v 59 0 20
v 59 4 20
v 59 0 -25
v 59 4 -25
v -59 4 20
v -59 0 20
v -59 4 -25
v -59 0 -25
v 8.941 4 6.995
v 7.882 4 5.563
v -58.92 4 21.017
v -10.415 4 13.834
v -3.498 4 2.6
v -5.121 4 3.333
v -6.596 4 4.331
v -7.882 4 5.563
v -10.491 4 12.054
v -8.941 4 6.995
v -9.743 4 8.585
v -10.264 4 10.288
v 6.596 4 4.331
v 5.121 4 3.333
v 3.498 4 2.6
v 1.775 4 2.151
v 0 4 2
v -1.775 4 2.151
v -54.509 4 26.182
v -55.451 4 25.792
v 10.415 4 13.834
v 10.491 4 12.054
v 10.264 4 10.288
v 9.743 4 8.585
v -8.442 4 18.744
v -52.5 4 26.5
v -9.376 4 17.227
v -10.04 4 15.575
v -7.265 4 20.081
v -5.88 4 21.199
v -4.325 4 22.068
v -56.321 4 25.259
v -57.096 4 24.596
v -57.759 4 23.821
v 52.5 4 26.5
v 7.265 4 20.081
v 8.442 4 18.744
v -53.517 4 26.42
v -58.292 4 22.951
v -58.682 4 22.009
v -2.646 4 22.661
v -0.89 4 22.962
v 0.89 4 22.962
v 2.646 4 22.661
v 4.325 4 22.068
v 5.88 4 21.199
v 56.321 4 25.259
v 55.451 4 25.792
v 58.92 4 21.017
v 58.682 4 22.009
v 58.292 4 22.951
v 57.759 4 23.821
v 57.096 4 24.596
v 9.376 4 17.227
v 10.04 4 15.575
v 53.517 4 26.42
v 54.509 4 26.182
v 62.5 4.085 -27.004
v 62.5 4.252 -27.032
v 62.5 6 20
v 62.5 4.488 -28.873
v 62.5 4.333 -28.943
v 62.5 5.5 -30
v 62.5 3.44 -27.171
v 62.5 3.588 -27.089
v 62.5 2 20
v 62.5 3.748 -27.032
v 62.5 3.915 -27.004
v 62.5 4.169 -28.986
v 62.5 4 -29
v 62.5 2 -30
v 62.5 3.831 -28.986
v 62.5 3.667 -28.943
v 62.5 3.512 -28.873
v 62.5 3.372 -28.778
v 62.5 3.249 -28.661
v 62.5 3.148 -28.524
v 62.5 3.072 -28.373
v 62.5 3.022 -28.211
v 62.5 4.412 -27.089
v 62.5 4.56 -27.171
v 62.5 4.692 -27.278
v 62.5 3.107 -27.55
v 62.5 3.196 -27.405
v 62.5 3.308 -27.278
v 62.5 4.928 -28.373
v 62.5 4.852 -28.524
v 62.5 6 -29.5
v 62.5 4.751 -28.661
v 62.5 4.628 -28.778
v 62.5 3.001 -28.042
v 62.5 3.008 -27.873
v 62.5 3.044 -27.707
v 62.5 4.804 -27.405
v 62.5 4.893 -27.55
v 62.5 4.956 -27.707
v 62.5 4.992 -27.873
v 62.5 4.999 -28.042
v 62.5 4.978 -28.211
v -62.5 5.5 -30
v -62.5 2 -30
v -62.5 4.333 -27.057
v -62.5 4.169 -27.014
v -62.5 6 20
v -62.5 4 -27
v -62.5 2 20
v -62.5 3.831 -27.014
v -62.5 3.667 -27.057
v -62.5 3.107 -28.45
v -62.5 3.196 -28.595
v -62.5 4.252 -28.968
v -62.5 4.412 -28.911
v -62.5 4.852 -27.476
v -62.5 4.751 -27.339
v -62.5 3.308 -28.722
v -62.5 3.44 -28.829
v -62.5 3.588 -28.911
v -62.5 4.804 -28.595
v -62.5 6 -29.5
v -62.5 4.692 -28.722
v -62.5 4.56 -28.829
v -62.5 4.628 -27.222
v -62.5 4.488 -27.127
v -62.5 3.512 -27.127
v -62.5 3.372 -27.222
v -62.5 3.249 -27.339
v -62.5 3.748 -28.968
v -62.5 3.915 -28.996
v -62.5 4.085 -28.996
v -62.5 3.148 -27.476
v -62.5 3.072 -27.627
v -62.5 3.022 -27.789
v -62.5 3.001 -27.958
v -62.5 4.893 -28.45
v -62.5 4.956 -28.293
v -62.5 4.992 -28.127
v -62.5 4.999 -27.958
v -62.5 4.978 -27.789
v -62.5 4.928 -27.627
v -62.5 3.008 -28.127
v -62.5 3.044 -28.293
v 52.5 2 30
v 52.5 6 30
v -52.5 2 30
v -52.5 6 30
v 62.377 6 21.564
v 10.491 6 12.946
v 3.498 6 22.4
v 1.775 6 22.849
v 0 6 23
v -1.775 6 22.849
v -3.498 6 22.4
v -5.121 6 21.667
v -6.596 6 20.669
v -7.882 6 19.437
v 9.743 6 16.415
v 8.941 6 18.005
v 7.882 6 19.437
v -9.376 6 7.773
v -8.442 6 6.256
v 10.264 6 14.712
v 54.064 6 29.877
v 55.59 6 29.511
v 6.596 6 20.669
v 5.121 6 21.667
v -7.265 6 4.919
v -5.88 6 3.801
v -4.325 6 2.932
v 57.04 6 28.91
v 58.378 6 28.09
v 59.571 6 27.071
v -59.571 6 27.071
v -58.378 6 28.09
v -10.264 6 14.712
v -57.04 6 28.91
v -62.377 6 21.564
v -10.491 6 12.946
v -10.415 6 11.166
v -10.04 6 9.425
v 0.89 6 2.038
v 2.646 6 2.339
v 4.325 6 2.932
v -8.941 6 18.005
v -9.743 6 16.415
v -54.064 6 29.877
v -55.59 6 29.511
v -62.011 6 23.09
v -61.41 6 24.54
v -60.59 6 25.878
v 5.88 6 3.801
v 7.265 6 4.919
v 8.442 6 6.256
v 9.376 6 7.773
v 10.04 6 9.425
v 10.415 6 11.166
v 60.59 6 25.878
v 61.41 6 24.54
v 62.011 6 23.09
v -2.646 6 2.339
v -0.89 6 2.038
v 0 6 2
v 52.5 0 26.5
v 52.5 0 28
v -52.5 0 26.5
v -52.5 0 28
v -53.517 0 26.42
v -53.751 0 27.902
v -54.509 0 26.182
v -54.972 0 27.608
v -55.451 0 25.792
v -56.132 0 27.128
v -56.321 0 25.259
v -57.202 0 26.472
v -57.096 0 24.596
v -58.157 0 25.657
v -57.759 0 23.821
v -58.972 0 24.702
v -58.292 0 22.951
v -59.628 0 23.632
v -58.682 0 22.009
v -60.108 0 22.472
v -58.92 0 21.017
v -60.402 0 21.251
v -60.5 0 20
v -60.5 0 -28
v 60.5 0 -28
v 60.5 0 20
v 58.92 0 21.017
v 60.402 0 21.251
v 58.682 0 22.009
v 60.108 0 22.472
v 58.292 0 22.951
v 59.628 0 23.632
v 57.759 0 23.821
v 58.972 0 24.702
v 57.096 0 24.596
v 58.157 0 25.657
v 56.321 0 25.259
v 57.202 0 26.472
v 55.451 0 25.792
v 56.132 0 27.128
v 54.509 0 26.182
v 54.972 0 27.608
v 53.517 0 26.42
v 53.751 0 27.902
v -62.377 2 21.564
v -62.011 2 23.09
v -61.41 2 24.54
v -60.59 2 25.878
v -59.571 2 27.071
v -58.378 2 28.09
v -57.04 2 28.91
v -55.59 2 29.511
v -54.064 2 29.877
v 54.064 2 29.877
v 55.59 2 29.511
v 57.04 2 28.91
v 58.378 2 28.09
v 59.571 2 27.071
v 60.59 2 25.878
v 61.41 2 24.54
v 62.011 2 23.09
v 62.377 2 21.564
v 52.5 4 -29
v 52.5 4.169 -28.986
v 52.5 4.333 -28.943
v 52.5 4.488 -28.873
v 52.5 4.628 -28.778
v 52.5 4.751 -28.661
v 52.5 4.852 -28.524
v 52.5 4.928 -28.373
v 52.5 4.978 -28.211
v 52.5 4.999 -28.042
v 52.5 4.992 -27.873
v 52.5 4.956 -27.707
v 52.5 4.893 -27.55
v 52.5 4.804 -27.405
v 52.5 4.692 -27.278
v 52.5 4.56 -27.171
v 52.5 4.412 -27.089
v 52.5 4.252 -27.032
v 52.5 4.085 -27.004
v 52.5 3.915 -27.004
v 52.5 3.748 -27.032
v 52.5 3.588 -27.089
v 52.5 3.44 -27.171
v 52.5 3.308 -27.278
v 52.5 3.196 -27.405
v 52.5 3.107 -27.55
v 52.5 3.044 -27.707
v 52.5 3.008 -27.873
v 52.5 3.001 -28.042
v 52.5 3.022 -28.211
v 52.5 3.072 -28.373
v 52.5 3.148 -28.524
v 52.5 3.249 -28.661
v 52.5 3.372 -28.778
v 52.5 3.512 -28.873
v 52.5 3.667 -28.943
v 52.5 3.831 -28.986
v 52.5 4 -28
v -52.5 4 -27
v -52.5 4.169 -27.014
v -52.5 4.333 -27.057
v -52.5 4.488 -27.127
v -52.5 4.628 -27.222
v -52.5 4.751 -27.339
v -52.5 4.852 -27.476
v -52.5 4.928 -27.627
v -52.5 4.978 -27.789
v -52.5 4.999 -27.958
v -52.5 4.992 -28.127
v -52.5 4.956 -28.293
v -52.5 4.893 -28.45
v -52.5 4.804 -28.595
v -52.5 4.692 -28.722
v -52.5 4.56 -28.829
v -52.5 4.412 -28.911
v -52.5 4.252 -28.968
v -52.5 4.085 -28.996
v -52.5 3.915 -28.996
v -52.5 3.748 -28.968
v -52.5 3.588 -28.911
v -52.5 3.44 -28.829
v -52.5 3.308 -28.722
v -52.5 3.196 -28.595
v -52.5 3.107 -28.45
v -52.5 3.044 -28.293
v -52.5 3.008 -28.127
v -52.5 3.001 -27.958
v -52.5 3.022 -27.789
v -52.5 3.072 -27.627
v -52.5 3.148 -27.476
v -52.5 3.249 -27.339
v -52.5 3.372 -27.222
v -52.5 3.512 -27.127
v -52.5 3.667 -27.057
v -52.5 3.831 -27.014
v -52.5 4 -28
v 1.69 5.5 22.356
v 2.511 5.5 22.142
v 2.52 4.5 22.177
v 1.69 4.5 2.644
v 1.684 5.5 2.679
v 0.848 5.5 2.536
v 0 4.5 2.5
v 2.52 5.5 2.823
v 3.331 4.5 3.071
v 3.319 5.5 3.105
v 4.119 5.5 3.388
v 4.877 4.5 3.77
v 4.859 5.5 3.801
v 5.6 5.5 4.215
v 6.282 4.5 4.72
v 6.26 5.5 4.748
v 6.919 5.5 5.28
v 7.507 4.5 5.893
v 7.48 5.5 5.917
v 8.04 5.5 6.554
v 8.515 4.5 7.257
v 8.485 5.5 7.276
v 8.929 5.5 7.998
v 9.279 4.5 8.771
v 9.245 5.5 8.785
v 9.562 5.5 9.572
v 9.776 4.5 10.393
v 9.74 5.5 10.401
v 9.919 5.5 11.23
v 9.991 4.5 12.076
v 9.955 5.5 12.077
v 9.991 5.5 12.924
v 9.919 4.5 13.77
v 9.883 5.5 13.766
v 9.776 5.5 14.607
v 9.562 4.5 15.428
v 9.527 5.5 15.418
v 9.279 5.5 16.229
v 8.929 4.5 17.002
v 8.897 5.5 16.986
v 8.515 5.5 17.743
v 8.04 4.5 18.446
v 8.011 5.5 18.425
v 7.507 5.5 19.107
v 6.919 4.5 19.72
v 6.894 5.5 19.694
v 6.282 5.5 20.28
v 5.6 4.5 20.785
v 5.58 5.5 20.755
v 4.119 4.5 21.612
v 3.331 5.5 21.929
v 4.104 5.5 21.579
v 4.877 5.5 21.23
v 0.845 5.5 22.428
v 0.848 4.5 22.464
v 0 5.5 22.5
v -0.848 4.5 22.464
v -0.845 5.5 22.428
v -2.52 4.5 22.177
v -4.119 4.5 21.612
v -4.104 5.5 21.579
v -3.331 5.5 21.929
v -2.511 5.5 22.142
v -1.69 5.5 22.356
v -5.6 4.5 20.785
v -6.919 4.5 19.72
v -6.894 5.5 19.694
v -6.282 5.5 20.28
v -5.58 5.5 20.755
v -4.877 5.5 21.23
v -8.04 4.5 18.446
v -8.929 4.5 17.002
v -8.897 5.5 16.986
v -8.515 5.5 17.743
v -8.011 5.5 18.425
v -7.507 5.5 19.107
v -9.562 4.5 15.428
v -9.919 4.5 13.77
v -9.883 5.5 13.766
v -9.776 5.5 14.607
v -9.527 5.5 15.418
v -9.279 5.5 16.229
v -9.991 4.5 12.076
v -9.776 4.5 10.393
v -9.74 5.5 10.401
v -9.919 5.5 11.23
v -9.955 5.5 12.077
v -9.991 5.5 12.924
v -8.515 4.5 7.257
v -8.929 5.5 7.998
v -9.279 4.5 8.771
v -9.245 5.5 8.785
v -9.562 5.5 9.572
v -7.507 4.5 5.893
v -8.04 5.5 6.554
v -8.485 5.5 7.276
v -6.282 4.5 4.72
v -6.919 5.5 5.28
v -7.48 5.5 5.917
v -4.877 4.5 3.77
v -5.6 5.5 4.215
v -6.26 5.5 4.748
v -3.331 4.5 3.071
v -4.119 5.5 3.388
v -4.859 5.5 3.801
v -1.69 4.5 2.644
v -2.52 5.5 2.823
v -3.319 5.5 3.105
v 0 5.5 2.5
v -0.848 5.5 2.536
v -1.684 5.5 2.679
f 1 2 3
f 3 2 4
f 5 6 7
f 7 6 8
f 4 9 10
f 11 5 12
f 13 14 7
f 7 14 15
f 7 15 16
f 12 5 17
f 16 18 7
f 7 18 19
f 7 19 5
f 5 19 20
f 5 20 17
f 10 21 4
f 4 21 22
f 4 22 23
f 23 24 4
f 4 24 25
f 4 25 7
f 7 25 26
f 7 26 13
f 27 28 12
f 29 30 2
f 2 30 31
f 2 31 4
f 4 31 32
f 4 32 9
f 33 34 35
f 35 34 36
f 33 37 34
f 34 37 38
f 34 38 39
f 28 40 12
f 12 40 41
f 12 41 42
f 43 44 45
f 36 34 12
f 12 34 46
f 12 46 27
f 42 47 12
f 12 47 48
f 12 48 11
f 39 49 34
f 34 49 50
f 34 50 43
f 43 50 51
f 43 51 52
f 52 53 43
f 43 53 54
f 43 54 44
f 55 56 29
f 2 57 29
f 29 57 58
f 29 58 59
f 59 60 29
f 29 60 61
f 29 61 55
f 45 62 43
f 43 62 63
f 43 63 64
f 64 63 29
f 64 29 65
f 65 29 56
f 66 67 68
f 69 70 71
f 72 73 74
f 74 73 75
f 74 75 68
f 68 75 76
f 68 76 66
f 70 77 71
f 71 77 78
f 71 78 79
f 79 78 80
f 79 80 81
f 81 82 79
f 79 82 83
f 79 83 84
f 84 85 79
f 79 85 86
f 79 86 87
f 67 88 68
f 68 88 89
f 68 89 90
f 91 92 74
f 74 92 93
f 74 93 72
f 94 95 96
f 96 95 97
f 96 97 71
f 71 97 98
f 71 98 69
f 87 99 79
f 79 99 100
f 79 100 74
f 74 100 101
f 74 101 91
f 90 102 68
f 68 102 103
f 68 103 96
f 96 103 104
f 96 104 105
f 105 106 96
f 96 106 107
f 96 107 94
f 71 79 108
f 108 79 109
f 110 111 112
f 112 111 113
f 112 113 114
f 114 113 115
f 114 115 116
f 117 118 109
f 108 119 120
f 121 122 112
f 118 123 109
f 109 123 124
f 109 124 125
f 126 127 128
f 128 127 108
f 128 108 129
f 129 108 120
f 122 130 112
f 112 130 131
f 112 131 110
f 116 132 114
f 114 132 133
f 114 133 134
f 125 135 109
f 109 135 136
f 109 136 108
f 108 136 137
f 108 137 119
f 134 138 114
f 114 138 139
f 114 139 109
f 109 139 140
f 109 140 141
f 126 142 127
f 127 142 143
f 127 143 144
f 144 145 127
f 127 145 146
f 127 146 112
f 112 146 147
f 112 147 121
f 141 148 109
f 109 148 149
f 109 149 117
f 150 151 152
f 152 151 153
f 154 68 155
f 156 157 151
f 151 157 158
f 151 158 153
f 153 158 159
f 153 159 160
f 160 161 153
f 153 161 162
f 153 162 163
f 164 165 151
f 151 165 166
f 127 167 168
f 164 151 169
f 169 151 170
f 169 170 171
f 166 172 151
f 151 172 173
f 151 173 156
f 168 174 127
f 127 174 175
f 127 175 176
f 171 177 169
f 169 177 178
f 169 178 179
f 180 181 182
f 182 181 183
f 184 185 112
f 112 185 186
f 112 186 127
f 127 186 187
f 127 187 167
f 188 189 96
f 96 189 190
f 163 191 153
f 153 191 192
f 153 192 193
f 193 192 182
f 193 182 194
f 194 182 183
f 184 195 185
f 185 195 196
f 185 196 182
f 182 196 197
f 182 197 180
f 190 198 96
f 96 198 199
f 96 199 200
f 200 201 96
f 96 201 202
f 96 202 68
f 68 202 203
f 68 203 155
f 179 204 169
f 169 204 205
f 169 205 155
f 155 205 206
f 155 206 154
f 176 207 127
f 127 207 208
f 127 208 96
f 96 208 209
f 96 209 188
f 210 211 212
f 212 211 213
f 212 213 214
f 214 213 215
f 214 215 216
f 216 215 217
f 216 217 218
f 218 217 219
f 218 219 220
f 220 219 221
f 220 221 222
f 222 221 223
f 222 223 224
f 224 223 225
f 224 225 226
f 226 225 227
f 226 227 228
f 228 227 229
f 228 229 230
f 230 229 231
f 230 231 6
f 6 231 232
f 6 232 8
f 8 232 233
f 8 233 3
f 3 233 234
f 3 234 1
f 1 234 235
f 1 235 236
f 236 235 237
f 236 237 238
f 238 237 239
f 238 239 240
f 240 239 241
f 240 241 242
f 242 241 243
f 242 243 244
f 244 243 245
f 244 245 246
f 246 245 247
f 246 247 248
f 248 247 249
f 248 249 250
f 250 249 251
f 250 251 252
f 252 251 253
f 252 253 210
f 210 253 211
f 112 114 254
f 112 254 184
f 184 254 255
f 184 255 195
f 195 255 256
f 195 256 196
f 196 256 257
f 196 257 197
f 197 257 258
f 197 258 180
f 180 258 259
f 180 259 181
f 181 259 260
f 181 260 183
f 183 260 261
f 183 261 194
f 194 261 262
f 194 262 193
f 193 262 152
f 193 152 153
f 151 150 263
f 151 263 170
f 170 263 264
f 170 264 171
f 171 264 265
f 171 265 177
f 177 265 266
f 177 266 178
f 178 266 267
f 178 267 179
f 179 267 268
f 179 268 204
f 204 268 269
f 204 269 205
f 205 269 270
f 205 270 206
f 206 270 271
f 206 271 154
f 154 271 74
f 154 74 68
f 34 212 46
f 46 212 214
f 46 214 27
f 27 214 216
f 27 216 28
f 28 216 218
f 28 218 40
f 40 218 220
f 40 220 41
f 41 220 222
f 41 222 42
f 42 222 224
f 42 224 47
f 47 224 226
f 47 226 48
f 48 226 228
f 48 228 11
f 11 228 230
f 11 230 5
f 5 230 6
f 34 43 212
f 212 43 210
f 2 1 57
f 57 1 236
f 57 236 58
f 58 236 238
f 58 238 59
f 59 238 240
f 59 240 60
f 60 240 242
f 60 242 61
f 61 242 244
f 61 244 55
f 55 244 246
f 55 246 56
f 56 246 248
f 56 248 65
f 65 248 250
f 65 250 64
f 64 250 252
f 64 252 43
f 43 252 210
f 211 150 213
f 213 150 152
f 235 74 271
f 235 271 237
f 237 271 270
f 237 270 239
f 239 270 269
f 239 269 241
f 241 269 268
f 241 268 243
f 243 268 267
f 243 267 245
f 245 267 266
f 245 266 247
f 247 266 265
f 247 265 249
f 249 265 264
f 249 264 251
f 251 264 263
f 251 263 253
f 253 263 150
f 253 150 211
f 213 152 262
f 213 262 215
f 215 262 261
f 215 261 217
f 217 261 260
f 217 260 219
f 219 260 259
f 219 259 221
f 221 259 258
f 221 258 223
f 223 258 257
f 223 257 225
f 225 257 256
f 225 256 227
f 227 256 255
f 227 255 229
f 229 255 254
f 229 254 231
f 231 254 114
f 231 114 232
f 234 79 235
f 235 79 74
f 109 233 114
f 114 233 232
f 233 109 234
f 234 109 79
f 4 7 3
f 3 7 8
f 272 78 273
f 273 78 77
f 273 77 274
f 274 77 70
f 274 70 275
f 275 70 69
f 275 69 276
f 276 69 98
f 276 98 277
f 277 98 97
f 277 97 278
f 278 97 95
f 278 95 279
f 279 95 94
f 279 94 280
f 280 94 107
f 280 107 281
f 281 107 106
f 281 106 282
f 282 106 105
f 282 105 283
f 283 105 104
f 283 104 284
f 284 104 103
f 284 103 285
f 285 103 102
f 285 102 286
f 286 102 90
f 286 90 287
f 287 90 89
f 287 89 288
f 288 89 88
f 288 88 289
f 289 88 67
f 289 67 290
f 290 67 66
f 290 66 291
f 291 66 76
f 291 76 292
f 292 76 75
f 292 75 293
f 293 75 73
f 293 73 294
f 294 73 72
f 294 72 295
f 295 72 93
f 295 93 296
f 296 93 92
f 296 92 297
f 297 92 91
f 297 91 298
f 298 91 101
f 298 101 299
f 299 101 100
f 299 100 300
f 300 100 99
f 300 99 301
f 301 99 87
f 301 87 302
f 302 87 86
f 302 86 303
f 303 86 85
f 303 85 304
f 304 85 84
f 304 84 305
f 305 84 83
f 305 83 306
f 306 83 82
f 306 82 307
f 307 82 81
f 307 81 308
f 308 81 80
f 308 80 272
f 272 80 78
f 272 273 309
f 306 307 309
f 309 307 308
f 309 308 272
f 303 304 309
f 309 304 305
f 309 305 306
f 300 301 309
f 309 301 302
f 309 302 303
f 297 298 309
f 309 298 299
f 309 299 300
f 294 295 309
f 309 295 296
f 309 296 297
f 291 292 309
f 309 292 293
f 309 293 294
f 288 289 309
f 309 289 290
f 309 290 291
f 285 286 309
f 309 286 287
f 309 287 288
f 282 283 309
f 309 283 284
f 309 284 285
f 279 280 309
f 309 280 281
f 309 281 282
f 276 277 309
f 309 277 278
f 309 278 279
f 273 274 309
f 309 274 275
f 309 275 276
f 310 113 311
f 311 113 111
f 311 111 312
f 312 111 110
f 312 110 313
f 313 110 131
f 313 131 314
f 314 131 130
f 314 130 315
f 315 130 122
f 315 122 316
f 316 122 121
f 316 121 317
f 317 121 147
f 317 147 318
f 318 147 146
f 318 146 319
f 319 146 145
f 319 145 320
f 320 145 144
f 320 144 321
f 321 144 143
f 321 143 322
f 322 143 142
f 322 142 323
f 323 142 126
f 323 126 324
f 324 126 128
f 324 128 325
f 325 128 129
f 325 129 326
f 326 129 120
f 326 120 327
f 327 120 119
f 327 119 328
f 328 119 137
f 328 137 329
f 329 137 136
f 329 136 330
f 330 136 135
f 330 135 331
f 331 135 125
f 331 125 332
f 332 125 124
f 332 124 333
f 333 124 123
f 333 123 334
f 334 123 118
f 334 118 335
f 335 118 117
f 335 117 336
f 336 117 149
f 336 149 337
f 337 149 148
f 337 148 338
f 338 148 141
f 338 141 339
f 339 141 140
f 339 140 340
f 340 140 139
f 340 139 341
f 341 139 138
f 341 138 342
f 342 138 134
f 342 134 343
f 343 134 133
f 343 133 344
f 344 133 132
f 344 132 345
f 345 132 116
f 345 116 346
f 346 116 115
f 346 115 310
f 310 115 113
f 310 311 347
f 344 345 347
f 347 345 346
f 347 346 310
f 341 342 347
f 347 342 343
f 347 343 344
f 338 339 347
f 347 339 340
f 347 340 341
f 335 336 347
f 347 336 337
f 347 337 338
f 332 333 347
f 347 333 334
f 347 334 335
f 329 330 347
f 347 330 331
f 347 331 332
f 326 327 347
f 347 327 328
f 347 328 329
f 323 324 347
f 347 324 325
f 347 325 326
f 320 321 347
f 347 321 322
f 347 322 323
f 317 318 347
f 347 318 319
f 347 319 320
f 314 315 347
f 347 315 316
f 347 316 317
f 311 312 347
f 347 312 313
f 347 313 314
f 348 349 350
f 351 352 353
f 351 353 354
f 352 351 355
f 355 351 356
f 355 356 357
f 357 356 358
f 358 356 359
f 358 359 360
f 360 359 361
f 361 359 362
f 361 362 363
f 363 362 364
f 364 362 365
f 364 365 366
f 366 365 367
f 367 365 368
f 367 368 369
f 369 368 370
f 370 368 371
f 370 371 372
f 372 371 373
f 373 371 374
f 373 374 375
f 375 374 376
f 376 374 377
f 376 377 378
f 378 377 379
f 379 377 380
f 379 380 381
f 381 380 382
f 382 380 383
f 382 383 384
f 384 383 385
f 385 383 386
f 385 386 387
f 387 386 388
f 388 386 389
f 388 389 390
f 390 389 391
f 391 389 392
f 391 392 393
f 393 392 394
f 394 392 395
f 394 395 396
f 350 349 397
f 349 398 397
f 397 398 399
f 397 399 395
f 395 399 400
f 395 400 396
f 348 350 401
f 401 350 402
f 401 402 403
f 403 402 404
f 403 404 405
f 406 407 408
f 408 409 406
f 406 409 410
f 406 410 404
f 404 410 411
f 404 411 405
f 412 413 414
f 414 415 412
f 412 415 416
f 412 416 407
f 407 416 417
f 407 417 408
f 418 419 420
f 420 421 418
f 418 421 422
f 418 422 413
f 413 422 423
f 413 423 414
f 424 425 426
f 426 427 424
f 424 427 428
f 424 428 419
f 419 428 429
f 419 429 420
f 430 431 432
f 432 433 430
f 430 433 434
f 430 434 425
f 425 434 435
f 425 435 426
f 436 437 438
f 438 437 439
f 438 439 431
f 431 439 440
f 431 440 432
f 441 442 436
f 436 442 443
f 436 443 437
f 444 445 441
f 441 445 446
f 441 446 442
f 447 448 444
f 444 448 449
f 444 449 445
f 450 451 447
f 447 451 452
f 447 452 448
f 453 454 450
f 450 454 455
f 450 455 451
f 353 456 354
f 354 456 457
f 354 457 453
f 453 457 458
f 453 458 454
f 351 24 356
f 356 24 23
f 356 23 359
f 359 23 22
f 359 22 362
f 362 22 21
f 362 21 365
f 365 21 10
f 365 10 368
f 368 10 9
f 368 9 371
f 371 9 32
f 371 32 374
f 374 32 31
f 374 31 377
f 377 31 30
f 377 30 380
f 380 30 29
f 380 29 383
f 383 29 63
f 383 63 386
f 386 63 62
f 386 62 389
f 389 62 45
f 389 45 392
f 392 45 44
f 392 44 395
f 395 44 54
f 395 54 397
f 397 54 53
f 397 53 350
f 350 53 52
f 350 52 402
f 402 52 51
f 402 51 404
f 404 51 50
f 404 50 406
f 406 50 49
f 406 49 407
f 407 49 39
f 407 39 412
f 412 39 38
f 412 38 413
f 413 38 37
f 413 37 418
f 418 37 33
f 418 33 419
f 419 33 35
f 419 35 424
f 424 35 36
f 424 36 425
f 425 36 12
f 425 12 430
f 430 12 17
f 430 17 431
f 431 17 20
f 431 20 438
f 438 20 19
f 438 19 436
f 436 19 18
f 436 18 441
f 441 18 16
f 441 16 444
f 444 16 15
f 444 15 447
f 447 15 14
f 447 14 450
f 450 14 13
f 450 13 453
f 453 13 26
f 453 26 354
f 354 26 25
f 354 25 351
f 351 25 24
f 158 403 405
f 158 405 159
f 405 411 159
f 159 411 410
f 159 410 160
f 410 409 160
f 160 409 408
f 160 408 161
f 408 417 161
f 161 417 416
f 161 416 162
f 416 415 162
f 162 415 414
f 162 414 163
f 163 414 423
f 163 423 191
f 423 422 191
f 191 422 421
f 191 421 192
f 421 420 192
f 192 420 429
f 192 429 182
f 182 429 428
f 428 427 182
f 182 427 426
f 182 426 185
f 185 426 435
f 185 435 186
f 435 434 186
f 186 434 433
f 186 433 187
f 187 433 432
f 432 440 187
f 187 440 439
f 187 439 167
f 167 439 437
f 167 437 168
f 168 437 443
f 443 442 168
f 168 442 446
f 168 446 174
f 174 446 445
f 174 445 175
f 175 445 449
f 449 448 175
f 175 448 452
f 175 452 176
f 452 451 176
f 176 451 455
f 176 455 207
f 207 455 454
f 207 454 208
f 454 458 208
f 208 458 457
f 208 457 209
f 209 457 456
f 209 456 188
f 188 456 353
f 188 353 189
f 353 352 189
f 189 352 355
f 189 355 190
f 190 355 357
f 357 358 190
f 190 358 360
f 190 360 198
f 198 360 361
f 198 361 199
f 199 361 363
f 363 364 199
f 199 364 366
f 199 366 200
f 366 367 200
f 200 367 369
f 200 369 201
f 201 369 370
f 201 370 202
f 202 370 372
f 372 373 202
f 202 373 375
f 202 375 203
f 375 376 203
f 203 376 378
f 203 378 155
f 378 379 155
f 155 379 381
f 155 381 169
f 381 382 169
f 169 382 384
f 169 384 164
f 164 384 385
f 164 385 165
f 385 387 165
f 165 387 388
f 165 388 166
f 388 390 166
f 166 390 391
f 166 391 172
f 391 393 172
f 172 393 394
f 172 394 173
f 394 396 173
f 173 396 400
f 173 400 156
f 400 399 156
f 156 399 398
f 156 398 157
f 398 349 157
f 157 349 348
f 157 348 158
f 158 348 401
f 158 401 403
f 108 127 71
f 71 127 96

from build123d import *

# Parameters (mm, degrees)
SKETCH_1_W          = 125
SKETCH_1_H          = 60
EXTRUDE_1_DEPTH     = 6
FILLET_1_R          = 10
CUT_EXTRUDE_1_DEPTH = 4
CHAMFER_1_SIZE      = 2
SKETCH_4_W          = 118
SKETCH_4_H          = 1.5
EXTRUDE_3_DEPTH     = 4
SKETCH_3_R          = 1
CUT_EXTRUDE_2_DEPTH = 10
SKETCH_5_R          = 1
CUT_EXTRUDE_3_DEPTH = 10
SKETCH_6_R          = 10
CUT_EXTRUDE_4_DEPTH = 2
CHAMFER_2_SIZE      = 0.5


with BuildPart() as part:
    # Эскиз1 → Бобышка-Вытянуть1 (new body)
    with BuildSketch(Plane(origin=(0, 0, 0), x_dir=(1, 0, 0), z_dir=(0, 1, 0))):
        Rectangle(SKETCH_1_W, SKETCH_1_H)
    extrude(amount=EXTRUDE_1_DEPTH)

    # Скругление1
    fillet_1_edges = [part.edges().sort_by_distance(p)[0] for p in [
        (62.5, 3, 30),
        (-62.5, 3, 30),
    ]]
    fillet(fillet_1_edges, radius=FILLET_1_R)

    # Эскиз2 → Вырез-Вытянуть1 (cut)
    with BuildSketch(Plane.XZ):
        with BuildLine():
            Line((-59, 20), (-59, -26.5))
            Line((-59, -26.5), (59, -26.5))
            Line((59, -26.5), (59, 20))
            ThreePointArc((59, 20), (57.096194078, 24.596194078), (52.5, 26.5))
            Line((52.5, 26.5), (-52.5, 26.5))
            ThreePointArc((-52.5, 26.5), (-57.096194078, 24.596194078), (-59, 20))
        make_face()
    extrude(amount=-CUT_EXTRUDE_1_DEPTH, mode=Mode.SUBTRACT)

    # Фаска1
    chamfer_1_edges = [part.edges().sort_by_distance(p)[0] for p in [
        (0, 0, 30),
        (62.5, 0, -5),
        (59.571067812, 0, 27.071067812),
        (-59.571067812, 0, 27.071067812),
        (-62.5, 0, -5),
        (0, 0, -30),
    ]]
    chamfer(chamfer_1_edges, length=CHAMFER_1_SIZE)

    # Эскиз4 → Бобышка-Вытянуть3 (add)
    with BuildSketch(Plane.XZ.offset(-4)):
        with Locations((0, -25.75)):
            Rectangle(SKETCH_4_W, SKETCH_4_H)
    extrude(amount=EXTRUDE_3_DEPTH)

    # Эскиз3 → Вырез-Вытянуть2 (cut)
    with BuildSketch(Plane(origin=(62.5, 0, 0), x_dir=(0, 0, -1), z_dir=(1, 0, 0))):
        with Locations((28, 4)):
            Circle(SKETCH_3_R)
    extrude(amount=-CUT_EXTRUDE_2_DEPTH, mode=Mode.SUBTRACT)

    # Эскиз5 → Вырез-Вытянуть3 (cut)
    with BuildSketch(Plane.ZY.offset(62.5)):
        with Locations((-28, 4)):
            Circle(SKETCH_5_R)
    extrude(amount=-CUT_EXTRUDE_3_DEPTH, mode=Mode.SUBTRACT)

    # Эскиз6 → Вырез-Вытянуть4 (cut)
    with BuildSketch(Plane.XZ.offset(-4)):
        with Locations((0, 12.5)):
            Circle(SKETCH_6_R)
    extrude(amount=-CUT_EXTRUDE_4_DEPTH, mode=Mode.SUBTRACT)

    # Фаска2
    chamfer_2_edges = [part.edges().sort_by_distance(p)[0] for p in [
        (0, 6, -30),
        (-10, 4, 12.5),
        (-10, 6, 12.5),
    ]]
    chamfer(chamfer_2_edges, length=CHAMFER_2_SIZE)


solid = part.part
